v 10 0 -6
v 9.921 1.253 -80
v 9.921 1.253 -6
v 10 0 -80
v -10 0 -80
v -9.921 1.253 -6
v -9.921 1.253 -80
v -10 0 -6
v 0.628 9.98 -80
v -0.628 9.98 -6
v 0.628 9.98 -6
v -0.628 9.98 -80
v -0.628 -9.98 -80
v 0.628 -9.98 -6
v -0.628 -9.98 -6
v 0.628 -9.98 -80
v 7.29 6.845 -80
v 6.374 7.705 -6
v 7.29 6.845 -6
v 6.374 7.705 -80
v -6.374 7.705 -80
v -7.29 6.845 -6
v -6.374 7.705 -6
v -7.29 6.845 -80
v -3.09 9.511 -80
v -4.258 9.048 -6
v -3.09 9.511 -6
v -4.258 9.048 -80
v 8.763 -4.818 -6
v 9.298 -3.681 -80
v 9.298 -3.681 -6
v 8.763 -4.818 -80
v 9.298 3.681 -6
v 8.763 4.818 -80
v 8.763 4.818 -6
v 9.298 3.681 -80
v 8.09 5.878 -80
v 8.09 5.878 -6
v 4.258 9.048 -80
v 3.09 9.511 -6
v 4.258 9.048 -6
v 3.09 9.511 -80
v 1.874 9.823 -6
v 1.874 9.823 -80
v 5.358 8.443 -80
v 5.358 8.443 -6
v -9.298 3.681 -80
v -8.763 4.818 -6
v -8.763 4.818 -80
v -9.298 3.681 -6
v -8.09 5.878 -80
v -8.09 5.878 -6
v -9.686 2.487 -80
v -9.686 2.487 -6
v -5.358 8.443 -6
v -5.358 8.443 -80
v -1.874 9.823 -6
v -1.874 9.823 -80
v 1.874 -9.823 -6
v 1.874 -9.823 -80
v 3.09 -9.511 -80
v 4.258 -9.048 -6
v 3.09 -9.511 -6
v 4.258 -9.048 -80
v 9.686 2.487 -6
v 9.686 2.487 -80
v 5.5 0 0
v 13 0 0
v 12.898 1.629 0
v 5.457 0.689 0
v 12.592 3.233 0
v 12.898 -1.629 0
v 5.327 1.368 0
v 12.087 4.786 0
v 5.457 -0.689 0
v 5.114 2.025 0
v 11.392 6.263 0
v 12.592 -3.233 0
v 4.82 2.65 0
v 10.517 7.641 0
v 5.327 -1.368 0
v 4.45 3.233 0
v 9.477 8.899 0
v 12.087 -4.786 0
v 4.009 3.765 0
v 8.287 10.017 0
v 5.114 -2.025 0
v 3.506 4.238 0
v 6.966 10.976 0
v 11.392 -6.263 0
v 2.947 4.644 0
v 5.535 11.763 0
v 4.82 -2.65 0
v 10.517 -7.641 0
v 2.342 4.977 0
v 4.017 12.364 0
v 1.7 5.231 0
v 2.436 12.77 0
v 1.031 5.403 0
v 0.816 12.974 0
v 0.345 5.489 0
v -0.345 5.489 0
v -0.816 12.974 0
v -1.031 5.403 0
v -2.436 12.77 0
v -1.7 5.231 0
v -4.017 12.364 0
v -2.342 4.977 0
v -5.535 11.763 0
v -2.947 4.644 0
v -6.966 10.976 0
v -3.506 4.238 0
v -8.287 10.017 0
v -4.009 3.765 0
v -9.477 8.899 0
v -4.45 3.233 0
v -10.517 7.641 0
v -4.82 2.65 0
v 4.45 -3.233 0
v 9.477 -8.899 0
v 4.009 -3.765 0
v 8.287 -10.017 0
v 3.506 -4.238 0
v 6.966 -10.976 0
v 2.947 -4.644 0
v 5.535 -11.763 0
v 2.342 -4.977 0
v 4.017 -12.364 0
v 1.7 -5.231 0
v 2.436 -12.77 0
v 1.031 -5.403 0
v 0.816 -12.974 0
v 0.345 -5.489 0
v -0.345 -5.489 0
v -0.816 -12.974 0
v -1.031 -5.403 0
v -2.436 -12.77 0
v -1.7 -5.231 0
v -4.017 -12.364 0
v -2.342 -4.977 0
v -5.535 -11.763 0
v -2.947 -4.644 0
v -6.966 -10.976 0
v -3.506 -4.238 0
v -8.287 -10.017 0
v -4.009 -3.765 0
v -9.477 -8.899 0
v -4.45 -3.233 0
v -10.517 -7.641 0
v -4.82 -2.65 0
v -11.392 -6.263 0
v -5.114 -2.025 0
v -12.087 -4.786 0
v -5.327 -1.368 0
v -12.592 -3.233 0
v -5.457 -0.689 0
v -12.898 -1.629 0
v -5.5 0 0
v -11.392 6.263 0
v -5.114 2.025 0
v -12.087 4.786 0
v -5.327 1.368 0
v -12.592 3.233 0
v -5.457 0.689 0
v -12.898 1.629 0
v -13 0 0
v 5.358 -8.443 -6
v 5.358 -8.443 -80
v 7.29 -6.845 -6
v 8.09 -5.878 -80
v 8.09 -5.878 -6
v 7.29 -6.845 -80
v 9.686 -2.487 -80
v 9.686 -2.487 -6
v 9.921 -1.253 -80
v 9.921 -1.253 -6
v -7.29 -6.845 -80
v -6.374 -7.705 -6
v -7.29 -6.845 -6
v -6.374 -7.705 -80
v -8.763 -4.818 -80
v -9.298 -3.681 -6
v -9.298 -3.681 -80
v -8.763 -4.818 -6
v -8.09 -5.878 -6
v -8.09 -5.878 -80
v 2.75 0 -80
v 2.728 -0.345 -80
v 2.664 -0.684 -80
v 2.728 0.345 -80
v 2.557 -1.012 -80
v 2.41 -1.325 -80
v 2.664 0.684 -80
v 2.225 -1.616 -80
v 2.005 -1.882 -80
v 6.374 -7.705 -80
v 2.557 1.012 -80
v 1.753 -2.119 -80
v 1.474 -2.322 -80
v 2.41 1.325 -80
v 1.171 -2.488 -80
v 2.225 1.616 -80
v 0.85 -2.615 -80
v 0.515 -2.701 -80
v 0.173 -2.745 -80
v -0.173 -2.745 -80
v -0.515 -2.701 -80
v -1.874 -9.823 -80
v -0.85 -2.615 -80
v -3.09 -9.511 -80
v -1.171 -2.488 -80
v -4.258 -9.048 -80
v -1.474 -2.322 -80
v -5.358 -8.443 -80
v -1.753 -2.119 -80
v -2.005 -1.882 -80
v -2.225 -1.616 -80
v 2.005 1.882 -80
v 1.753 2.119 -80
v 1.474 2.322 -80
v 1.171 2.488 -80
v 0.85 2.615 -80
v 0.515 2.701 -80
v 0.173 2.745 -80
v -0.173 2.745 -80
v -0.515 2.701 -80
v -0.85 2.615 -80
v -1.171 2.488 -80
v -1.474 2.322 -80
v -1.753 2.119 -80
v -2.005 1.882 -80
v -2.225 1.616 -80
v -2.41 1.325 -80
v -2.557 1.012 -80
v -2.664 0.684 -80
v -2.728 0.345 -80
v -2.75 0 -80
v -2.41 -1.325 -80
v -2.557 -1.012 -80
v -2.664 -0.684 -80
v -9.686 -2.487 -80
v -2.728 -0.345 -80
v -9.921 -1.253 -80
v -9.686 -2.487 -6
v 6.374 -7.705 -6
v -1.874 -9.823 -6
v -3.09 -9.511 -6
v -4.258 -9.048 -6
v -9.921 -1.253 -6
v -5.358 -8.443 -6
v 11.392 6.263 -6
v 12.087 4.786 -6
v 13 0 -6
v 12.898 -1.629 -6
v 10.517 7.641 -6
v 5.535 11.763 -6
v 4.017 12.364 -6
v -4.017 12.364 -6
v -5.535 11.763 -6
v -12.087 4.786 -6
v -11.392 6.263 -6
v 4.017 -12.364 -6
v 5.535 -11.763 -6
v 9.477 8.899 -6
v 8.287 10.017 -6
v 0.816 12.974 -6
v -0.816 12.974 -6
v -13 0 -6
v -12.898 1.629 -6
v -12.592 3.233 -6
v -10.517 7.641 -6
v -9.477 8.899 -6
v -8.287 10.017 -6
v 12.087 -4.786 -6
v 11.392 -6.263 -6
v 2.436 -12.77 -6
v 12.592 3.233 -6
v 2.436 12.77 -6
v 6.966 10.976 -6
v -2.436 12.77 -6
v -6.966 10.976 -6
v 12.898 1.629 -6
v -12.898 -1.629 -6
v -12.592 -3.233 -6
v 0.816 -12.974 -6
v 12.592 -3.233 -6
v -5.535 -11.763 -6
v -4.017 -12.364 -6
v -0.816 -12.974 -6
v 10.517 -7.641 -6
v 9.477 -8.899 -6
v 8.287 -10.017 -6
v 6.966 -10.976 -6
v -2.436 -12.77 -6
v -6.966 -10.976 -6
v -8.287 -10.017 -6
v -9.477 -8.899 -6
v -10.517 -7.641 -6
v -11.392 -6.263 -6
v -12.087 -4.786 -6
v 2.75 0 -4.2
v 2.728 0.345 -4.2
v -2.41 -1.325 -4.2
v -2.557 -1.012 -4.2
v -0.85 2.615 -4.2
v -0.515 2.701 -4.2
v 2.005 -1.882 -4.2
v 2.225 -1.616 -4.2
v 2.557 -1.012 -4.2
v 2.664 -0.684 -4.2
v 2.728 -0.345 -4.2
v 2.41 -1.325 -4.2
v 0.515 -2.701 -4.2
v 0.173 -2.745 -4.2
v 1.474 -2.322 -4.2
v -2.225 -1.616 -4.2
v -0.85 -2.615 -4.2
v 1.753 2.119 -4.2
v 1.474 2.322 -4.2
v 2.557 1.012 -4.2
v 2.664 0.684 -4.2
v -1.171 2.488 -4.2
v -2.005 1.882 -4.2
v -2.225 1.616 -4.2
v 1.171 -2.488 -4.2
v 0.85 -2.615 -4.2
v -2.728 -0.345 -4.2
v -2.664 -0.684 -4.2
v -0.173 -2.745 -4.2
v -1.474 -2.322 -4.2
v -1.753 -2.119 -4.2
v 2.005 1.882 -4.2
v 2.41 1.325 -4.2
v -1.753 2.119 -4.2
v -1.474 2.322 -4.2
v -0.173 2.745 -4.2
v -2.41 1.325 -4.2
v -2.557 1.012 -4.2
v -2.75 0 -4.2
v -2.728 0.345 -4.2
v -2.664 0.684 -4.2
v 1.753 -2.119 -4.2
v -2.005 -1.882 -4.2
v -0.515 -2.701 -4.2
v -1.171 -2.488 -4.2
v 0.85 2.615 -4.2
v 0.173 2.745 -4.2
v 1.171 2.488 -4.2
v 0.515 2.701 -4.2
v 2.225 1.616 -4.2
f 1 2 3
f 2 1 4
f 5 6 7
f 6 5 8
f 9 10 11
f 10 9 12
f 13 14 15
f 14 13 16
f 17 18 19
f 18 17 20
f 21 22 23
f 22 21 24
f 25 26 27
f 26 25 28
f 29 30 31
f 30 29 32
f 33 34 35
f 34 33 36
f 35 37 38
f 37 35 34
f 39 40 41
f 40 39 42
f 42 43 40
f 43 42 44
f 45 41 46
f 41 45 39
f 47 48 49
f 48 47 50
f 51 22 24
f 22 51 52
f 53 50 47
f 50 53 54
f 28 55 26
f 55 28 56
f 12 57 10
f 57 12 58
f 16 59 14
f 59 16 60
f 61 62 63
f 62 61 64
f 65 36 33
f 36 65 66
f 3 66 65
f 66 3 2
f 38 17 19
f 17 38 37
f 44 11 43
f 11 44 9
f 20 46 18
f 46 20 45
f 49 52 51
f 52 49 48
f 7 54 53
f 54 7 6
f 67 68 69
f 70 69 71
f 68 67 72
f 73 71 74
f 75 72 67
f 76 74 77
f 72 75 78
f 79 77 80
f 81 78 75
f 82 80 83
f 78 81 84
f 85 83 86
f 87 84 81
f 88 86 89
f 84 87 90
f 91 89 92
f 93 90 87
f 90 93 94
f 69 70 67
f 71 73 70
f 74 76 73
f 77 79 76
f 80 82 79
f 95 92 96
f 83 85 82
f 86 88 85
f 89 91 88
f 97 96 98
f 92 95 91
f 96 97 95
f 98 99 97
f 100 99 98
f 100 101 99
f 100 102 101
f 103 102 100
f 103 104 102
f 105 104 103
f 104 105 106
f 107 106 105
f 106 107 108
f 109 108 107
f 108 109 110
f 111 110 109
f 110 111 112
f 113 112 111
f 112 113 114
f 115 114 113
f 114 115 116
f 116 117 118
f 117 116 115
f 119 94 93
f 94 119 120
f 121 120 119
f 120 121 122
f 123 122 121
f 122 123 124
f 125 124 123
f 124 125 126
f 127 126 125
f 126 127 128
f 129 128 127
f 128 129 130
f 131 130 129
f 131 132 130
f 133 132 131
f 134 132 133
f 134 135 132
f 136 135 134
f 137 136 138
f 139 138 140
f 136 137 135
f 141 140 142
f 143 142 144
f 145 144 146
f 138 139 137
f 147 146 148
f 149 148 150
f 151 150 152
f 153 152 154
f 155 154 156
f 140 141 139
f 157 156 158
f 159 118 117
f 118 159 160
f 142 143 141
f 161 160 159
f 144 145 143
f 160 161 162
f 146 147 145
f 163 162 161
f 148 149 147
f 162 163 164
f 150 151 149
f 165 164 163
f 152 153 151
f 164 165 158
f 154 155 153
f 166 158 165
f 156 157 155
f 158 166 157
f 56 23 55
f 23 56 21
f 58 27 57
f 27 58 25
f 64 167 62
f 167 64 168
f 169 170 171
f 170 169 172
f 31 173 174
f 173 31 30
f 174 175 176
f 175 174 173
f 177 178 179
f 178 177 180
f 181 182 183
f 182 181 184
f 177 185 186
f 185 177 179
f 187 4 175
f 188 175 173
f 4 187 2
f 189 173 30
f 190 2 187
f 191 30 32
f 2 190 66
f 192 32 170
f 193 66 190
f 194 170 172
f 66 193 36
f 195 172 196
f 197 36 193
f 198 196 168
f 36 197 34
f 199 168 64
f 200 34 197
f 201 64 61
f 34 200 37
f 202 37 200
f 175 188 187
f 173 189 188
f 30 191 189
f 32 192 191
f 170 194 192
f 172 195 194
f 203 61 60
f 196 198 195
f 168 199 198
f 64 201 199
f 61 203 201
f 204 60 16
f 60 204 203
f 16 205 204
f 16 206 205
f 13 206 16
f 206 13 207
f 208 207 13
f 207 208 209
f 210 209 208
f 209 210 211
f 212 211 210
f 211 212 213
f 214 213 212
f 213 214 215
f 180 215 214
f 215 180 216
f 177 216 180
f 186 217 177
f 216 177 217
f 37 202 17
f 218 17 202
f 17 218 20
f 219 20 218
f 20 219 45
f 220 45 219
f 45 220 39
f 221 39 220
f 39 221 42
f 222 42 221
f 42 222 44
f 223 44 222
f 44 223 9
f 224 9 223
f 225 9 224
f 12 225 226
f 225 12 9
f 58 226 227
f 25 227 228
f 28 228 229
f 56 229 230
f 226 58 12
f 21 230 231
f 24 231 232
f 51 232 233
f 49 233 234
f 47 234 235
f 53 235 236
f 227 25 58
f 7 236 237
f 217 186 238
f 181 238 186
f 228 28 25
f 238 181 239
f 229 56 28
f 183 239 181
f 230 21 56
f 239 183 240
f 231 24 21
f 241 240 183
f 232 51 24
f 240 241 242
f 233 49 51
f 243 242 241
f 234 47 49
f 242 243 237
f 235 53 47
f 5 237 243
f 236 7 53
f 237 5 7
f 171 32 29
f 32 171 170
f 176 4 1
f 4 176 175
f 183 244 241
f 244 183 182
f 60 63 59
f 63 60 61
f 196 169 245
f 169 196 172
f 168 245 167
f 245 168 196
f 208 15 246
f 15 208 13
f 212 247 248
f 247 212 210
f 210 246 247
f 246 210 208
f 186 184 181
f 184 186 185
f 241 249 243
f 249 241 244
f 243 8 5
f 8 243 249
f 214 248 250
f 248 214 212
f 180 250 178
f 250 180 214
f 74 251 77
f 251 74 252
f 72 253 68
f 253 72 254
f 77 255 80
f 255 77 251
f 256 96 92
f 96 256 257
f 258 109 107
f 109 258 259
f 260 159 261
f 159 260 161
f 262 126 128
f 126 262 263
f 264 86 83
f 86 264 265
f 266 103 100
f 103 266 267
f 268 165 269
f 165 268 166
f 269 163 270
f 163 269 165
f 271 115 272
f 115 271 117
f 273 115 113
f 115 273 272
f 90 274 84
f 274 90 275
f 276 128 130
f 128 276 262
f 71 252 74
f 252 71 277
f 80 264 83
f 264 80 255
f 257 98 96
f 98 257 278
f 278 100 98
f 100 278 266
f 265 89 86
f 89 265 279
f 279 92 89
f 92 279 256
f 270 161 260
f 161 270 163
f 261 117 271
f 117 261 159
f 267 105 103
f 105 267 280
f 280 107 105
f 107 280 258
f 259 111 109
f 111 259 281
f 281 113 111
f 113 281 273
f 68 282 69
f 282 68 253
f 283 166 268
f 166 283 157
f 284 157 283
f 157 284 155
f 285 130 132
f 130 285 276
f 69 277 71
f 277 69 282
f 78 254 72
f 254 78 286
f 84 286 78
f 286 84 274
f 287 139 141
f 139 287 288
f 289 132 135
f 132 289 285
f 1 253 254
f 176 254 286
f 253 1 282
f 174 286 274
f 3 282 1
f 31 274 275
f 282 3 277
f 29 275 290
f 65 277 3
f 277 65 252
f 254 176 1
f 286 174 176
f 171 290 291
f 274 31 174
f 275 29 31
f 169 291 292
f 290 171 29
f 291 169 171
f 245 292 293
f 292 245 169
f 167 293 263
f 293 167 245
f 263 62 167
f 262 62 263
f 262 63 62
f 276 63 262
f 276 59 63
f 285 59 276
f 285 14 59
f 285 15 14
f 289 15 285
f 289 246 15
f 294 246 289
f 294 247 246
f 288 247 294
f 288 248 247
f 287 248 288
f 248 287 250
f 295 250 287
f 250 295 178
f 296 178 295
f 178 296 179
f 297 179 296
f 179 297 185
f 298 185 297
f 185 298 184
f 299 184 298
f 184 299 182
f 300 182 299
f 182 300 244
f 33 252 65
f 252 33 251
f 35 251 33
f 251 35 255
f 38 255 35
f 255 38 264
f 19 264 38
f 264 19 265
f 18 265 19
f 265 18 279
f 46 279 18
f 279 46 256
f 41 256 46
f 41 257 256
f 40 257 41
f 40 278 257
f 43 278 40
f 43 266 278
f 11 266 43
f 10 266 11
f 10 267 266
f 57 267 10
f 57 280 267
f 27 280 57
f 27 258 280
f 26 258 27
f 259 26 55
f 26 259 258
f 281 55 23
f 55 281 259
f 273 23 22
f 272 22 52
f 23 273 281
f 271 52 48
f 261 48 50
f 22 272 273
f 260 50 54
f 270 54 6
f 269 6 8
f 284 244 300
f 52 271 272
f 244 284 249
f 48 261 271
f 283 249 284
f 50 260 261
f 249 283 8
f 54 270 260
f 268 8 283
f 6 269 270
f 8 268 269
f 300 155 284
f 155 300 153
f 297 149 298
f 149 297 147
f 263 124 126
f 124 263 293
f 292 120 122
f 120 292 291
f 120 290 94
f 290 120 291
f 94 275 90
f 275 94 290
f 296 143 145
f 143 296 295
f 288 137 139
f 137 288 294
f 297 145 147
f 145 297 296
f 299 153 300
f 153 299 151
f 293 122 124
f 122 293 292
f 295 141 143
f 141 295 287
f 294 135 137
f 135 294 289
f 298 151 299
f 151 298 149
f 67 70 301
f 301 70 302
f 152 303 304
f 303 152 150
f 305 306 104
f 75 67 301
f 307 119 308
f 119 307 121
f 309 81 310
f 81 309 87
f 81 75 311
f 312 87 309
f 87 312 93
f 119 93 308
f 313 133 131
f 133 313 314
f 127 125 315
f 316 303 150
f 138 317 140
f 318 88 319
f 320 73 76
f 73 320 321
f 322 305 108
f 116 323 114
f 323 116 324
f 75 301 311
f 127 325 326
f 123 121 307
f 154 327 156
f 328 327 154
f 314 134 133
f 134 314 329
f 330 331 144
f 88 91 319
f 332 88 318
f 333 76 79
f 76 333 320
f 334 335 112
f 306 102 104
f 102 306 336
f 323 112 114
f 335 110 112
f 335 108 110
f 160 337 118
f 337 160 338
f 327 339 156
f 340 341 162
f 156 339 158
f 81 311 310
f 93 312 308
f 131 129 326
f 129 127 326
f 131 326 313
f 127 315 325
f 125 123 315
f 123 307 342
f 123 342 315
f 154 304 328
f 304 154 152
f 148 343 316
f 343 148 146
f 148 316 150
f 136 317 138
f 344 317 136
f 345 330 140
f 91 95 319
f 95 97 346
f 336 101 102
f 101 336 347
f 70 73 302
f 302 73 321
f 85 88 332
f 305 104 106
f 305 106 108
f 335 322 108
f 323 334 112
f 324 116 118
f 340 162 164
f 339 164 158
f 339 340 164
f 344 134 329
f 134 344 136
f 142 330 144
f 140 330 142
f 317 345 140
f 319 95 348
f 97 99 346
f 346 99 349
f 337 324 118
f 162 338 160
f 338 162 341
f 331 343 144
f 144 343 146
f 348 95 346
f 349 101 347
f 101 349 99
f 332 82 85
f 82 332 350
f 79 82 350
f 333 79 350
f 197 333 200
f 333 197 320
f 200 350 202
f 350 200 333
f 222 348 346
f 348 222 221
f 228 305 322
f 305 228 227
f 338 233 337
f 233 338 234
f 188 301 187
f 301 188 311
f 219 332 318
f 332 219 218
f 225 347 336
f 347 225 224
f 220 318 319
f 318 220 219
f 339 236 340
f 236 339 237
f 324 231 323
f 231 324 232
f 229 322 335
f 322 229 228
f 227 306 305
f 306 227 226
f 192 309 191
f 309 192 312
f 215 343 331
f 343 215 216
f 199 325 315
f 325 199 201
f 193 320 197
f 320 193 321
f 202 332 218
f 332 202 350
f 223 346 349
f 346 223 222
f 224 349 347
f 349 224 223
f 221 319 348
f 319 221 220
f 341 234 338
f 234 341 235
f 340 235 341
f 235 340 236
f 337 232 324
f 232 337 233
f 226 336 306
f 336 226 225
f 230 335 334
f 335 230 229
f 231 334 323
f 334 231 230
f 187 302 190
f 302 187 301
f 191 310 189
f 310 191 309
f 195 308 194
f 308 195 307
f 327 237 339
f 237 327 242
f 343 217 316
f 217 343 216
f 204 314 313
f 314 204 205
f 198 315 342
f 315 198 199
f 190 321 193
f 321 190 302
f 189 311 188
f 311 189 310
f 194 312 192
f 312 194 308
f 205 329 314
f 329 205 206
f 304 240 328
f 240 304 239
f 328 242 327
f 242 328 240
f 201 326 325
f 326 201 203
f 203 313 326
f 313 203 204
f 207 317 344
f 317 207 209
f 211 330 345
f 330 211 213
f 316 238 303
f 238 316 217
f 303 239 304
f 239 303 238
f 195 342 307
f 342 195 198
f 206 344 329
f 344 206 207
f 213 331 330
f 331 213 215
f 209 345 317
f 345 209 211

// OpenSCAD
$fn = 50;


difference() {
	union() {
		translate(v = [0, 0, -80.0000000000]) {
			cylinder(h = 80, r = 10.0000000000);
		}
		translate(v = [0, 0, -6.0000000000]) {
			cylinder(h = 6, r = 13.0000000000);
		}
	}
	union() {
		translate(v = [0, 0, 0]) {
			rotate(a = [0, 0, 0]) {
				difference() {
					union() {
						#translate(v = [0, 0, -80.0000000000]) {
							cylinder(h = 80, r = 2.2500000000);
						}
						#translate(v = [0, 0, -4.2000000000]) {
							cylinder(h = 4.2000000000, r = 10.0000000000, r1 = 2.7500000000, r2 = 5.5000000000);
						}
						#translate(v = [0, 0, -80.0000000000]) {
							cylinder(h = 80, r = 2.7500000000);
						}
						#translate(v = [0, 0, -80.0000000000]) {
							cylinder(h = 80, r = 2.2500000000);
						}
					}
					union();
				}
			}
		}
	}
}
